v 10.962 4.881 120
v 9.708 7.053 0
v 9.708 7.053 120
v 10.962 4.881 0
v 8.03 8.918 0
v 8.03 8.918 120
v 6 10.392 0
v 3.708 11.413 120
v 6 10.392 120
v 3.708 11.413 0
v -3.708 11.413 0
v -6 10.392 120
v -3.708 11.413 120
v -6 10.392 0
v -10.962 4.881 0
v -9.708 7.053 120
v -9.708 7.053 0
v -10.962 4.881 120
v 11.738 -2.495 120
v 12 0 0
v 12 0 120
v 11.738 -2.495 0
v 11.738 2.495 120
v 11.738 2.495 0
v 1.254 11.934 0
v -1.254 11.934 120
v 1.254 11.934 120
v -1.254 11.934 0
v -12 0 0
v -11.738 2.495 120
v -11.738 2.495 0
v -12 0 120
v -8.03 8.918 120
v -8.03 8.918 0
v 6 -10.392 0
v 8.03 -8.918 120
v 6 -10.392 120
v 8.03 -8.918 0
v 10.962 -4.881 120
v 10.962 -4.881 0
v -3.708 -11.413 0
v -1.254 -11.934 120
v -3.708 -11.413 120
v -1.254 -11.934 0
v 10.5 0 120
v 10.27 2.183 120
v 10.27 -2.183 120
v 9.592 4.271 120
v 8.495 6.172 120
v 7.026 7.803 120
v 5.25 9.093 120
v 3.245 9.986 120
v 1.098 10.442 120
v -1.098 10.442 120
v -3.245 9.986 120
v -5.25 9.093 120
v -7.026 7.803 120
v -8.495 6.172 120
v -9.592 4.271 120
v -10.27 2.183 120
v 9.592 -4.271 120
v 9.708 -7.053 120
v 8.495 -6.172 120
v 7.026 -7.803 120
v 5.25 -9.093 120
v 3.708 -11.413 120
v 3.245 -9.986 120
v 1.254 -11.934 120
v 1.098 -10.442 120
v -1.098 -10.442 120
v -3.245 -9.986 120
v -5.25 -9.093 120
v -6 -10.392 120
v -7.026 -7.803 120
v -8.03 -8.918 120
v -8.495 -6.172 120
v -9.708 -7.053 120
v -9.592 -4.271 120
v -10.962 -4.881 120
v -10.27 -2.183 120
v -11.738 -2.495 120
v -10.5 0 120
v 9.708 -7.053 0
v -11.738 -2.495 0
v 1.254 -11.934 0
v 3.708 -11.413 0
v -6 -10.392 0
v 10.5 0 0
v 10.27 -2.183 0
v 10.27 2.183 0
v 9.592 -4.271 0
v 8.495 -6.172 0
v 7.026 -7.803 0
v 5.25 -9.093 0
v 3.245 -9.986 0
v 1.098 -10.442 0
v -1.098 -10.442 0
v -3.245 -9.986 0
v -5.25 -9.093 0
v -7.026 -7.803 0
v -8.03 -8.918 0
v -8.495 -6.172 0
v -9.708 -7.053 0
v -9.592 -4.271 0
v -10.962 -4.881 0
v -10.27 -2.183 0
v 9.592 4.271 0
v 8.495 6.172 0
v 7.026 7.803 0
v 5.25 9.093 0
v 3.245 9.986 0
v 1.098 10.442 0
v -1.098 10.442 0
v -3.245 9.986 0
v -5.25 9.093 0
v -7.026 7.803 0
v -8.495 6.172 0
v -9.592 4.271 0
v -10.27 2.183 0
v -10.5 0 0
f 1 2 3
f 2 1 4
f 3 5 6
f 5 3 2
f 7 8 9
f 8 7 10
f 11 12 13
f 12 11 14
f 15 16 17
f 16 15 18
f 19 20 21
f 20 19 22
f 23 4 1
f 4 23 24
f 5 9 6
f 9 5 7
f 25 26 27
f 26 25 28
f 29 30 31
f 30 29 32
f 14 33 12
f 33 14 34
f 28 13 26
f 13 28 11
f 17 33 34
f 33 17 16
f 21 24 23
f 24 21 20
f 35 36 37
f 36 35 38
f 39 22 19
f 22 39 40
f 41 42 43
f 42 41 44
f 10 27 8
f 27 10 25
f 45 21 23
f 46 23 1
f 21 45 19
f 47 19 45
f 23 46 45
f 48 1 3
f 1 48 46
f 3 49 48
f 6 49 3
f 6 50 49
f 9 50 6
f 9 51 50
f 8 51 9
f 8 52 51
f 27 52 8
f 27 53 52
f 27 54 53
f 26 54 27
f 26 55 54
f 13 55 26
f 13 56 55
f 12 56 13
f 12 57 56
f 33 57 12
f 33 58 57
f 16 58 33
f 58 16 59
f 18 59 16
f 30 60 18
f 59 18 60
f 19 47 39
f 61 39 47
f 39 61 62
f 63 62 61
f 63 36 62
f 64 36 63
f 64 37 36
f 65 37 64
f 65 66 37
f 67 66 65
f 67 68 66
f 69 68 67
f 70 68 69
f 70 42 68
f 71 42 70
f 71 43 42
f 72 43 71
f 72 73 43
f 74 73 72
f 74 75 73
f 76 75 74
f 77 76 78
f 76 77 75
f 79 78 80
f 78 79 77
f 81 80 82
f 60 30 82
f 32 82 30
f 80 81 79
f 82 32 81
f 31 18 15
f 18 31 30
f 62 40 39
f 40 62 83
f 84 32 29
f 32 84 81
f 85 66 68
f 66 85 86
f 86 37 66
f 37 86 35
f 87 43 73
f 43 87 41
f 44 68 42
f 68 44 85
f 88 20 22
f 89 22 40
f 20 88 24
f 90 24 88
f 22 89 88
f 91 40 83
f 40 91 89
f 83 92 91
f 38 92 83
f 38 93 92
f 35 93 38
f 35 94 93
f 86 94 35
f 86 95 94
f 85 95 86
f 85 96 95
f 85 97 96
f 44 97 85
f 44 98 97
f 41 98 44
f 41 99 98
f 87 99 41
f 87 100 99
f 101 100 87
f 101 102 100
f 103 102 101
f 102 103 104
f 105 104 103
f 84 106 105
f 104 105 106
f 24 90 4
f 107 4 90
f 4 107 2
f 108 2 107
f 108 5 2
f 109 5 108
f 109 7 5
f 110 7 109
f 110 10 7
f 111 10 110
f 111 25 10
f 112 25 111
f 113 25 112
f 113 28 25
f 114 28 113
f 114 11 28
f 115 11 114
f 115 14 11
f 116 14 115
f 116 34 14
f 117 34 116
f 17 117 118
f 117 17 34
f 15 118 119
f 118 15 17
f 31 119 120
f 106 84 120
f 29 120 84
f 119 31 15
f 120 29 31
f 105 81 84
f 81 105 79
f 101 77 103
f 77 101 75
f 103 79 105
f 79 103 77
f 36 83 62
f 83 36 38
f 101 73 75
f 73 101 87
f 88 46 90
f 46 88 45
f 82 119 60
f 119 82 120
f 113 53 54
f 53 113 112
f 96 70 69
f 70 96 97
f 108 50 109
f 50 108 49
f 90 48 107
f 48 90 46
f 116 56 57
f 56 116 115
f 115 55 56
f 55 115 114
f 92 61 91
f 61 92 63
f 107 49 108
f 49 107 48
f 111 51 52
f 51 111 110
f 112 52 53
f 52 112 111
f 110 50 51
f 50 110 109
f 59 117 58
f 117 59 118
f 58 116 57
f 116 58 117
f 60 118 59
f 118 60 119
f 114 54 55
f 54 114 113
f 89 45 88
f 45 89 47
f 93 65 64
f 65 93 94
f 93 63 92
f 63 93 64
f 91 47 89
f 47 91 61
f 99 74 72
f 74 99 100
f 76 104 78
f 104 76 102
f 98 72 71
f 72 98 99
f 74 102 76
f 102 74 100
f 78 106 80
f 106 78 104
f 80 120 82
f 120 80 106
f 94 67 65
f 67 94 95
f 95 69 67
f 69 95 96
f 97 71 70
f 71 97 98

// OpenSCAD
//
// WeatherPi Lightning Sensor Block Extension
//
// SwitchDoc Labs 5/18/15
//
//

module sensorPylon()
{
    
    // tube
    
    difference()
    {
        union()
        {
            cylinder(120, r=12);
        

        }
    
        translate([0,0,-10])
        cylinder(150, r=10.5);
        

        
    }
    
    
   
    
    
    
    
}

module sensorBox()
{
    
    difference()
    {
        translate([-16.5,-16.5,0])
        cube([43,43,33]);
    
        translate([-15,-15,-2])
        cube([40,40,32]);
        
        translate([-15.5,-15.5,-1])
        cube([41,41,3]);
        
    }
    
    
}

module sensorPlatform()
{
    
    difference()
    {
        union()
        {
            translate([-17.95,-17.95,-1])
            cube([40.9,40.9,2]);
            
            translate([2.5,2.5,-5])
            #cylinder(5,r=10.4);
        }
        
        translate([2.5,2.5,-5])
        #cylinder(10,r=9.0); 
    }
    
    
}

/*
sensorPylon();

translate([0,0,180])
sensorBox();

translate([0,0,160])
sensorPlatform();
*/

translate([0,0,0])  // 60
sensorPylon();

/*
rotate(180,[0,1,0])
{

translate([50,0,-33])
sensorBox();

//translate([0,0,-1])
//sensorPlatform();
}

*/
